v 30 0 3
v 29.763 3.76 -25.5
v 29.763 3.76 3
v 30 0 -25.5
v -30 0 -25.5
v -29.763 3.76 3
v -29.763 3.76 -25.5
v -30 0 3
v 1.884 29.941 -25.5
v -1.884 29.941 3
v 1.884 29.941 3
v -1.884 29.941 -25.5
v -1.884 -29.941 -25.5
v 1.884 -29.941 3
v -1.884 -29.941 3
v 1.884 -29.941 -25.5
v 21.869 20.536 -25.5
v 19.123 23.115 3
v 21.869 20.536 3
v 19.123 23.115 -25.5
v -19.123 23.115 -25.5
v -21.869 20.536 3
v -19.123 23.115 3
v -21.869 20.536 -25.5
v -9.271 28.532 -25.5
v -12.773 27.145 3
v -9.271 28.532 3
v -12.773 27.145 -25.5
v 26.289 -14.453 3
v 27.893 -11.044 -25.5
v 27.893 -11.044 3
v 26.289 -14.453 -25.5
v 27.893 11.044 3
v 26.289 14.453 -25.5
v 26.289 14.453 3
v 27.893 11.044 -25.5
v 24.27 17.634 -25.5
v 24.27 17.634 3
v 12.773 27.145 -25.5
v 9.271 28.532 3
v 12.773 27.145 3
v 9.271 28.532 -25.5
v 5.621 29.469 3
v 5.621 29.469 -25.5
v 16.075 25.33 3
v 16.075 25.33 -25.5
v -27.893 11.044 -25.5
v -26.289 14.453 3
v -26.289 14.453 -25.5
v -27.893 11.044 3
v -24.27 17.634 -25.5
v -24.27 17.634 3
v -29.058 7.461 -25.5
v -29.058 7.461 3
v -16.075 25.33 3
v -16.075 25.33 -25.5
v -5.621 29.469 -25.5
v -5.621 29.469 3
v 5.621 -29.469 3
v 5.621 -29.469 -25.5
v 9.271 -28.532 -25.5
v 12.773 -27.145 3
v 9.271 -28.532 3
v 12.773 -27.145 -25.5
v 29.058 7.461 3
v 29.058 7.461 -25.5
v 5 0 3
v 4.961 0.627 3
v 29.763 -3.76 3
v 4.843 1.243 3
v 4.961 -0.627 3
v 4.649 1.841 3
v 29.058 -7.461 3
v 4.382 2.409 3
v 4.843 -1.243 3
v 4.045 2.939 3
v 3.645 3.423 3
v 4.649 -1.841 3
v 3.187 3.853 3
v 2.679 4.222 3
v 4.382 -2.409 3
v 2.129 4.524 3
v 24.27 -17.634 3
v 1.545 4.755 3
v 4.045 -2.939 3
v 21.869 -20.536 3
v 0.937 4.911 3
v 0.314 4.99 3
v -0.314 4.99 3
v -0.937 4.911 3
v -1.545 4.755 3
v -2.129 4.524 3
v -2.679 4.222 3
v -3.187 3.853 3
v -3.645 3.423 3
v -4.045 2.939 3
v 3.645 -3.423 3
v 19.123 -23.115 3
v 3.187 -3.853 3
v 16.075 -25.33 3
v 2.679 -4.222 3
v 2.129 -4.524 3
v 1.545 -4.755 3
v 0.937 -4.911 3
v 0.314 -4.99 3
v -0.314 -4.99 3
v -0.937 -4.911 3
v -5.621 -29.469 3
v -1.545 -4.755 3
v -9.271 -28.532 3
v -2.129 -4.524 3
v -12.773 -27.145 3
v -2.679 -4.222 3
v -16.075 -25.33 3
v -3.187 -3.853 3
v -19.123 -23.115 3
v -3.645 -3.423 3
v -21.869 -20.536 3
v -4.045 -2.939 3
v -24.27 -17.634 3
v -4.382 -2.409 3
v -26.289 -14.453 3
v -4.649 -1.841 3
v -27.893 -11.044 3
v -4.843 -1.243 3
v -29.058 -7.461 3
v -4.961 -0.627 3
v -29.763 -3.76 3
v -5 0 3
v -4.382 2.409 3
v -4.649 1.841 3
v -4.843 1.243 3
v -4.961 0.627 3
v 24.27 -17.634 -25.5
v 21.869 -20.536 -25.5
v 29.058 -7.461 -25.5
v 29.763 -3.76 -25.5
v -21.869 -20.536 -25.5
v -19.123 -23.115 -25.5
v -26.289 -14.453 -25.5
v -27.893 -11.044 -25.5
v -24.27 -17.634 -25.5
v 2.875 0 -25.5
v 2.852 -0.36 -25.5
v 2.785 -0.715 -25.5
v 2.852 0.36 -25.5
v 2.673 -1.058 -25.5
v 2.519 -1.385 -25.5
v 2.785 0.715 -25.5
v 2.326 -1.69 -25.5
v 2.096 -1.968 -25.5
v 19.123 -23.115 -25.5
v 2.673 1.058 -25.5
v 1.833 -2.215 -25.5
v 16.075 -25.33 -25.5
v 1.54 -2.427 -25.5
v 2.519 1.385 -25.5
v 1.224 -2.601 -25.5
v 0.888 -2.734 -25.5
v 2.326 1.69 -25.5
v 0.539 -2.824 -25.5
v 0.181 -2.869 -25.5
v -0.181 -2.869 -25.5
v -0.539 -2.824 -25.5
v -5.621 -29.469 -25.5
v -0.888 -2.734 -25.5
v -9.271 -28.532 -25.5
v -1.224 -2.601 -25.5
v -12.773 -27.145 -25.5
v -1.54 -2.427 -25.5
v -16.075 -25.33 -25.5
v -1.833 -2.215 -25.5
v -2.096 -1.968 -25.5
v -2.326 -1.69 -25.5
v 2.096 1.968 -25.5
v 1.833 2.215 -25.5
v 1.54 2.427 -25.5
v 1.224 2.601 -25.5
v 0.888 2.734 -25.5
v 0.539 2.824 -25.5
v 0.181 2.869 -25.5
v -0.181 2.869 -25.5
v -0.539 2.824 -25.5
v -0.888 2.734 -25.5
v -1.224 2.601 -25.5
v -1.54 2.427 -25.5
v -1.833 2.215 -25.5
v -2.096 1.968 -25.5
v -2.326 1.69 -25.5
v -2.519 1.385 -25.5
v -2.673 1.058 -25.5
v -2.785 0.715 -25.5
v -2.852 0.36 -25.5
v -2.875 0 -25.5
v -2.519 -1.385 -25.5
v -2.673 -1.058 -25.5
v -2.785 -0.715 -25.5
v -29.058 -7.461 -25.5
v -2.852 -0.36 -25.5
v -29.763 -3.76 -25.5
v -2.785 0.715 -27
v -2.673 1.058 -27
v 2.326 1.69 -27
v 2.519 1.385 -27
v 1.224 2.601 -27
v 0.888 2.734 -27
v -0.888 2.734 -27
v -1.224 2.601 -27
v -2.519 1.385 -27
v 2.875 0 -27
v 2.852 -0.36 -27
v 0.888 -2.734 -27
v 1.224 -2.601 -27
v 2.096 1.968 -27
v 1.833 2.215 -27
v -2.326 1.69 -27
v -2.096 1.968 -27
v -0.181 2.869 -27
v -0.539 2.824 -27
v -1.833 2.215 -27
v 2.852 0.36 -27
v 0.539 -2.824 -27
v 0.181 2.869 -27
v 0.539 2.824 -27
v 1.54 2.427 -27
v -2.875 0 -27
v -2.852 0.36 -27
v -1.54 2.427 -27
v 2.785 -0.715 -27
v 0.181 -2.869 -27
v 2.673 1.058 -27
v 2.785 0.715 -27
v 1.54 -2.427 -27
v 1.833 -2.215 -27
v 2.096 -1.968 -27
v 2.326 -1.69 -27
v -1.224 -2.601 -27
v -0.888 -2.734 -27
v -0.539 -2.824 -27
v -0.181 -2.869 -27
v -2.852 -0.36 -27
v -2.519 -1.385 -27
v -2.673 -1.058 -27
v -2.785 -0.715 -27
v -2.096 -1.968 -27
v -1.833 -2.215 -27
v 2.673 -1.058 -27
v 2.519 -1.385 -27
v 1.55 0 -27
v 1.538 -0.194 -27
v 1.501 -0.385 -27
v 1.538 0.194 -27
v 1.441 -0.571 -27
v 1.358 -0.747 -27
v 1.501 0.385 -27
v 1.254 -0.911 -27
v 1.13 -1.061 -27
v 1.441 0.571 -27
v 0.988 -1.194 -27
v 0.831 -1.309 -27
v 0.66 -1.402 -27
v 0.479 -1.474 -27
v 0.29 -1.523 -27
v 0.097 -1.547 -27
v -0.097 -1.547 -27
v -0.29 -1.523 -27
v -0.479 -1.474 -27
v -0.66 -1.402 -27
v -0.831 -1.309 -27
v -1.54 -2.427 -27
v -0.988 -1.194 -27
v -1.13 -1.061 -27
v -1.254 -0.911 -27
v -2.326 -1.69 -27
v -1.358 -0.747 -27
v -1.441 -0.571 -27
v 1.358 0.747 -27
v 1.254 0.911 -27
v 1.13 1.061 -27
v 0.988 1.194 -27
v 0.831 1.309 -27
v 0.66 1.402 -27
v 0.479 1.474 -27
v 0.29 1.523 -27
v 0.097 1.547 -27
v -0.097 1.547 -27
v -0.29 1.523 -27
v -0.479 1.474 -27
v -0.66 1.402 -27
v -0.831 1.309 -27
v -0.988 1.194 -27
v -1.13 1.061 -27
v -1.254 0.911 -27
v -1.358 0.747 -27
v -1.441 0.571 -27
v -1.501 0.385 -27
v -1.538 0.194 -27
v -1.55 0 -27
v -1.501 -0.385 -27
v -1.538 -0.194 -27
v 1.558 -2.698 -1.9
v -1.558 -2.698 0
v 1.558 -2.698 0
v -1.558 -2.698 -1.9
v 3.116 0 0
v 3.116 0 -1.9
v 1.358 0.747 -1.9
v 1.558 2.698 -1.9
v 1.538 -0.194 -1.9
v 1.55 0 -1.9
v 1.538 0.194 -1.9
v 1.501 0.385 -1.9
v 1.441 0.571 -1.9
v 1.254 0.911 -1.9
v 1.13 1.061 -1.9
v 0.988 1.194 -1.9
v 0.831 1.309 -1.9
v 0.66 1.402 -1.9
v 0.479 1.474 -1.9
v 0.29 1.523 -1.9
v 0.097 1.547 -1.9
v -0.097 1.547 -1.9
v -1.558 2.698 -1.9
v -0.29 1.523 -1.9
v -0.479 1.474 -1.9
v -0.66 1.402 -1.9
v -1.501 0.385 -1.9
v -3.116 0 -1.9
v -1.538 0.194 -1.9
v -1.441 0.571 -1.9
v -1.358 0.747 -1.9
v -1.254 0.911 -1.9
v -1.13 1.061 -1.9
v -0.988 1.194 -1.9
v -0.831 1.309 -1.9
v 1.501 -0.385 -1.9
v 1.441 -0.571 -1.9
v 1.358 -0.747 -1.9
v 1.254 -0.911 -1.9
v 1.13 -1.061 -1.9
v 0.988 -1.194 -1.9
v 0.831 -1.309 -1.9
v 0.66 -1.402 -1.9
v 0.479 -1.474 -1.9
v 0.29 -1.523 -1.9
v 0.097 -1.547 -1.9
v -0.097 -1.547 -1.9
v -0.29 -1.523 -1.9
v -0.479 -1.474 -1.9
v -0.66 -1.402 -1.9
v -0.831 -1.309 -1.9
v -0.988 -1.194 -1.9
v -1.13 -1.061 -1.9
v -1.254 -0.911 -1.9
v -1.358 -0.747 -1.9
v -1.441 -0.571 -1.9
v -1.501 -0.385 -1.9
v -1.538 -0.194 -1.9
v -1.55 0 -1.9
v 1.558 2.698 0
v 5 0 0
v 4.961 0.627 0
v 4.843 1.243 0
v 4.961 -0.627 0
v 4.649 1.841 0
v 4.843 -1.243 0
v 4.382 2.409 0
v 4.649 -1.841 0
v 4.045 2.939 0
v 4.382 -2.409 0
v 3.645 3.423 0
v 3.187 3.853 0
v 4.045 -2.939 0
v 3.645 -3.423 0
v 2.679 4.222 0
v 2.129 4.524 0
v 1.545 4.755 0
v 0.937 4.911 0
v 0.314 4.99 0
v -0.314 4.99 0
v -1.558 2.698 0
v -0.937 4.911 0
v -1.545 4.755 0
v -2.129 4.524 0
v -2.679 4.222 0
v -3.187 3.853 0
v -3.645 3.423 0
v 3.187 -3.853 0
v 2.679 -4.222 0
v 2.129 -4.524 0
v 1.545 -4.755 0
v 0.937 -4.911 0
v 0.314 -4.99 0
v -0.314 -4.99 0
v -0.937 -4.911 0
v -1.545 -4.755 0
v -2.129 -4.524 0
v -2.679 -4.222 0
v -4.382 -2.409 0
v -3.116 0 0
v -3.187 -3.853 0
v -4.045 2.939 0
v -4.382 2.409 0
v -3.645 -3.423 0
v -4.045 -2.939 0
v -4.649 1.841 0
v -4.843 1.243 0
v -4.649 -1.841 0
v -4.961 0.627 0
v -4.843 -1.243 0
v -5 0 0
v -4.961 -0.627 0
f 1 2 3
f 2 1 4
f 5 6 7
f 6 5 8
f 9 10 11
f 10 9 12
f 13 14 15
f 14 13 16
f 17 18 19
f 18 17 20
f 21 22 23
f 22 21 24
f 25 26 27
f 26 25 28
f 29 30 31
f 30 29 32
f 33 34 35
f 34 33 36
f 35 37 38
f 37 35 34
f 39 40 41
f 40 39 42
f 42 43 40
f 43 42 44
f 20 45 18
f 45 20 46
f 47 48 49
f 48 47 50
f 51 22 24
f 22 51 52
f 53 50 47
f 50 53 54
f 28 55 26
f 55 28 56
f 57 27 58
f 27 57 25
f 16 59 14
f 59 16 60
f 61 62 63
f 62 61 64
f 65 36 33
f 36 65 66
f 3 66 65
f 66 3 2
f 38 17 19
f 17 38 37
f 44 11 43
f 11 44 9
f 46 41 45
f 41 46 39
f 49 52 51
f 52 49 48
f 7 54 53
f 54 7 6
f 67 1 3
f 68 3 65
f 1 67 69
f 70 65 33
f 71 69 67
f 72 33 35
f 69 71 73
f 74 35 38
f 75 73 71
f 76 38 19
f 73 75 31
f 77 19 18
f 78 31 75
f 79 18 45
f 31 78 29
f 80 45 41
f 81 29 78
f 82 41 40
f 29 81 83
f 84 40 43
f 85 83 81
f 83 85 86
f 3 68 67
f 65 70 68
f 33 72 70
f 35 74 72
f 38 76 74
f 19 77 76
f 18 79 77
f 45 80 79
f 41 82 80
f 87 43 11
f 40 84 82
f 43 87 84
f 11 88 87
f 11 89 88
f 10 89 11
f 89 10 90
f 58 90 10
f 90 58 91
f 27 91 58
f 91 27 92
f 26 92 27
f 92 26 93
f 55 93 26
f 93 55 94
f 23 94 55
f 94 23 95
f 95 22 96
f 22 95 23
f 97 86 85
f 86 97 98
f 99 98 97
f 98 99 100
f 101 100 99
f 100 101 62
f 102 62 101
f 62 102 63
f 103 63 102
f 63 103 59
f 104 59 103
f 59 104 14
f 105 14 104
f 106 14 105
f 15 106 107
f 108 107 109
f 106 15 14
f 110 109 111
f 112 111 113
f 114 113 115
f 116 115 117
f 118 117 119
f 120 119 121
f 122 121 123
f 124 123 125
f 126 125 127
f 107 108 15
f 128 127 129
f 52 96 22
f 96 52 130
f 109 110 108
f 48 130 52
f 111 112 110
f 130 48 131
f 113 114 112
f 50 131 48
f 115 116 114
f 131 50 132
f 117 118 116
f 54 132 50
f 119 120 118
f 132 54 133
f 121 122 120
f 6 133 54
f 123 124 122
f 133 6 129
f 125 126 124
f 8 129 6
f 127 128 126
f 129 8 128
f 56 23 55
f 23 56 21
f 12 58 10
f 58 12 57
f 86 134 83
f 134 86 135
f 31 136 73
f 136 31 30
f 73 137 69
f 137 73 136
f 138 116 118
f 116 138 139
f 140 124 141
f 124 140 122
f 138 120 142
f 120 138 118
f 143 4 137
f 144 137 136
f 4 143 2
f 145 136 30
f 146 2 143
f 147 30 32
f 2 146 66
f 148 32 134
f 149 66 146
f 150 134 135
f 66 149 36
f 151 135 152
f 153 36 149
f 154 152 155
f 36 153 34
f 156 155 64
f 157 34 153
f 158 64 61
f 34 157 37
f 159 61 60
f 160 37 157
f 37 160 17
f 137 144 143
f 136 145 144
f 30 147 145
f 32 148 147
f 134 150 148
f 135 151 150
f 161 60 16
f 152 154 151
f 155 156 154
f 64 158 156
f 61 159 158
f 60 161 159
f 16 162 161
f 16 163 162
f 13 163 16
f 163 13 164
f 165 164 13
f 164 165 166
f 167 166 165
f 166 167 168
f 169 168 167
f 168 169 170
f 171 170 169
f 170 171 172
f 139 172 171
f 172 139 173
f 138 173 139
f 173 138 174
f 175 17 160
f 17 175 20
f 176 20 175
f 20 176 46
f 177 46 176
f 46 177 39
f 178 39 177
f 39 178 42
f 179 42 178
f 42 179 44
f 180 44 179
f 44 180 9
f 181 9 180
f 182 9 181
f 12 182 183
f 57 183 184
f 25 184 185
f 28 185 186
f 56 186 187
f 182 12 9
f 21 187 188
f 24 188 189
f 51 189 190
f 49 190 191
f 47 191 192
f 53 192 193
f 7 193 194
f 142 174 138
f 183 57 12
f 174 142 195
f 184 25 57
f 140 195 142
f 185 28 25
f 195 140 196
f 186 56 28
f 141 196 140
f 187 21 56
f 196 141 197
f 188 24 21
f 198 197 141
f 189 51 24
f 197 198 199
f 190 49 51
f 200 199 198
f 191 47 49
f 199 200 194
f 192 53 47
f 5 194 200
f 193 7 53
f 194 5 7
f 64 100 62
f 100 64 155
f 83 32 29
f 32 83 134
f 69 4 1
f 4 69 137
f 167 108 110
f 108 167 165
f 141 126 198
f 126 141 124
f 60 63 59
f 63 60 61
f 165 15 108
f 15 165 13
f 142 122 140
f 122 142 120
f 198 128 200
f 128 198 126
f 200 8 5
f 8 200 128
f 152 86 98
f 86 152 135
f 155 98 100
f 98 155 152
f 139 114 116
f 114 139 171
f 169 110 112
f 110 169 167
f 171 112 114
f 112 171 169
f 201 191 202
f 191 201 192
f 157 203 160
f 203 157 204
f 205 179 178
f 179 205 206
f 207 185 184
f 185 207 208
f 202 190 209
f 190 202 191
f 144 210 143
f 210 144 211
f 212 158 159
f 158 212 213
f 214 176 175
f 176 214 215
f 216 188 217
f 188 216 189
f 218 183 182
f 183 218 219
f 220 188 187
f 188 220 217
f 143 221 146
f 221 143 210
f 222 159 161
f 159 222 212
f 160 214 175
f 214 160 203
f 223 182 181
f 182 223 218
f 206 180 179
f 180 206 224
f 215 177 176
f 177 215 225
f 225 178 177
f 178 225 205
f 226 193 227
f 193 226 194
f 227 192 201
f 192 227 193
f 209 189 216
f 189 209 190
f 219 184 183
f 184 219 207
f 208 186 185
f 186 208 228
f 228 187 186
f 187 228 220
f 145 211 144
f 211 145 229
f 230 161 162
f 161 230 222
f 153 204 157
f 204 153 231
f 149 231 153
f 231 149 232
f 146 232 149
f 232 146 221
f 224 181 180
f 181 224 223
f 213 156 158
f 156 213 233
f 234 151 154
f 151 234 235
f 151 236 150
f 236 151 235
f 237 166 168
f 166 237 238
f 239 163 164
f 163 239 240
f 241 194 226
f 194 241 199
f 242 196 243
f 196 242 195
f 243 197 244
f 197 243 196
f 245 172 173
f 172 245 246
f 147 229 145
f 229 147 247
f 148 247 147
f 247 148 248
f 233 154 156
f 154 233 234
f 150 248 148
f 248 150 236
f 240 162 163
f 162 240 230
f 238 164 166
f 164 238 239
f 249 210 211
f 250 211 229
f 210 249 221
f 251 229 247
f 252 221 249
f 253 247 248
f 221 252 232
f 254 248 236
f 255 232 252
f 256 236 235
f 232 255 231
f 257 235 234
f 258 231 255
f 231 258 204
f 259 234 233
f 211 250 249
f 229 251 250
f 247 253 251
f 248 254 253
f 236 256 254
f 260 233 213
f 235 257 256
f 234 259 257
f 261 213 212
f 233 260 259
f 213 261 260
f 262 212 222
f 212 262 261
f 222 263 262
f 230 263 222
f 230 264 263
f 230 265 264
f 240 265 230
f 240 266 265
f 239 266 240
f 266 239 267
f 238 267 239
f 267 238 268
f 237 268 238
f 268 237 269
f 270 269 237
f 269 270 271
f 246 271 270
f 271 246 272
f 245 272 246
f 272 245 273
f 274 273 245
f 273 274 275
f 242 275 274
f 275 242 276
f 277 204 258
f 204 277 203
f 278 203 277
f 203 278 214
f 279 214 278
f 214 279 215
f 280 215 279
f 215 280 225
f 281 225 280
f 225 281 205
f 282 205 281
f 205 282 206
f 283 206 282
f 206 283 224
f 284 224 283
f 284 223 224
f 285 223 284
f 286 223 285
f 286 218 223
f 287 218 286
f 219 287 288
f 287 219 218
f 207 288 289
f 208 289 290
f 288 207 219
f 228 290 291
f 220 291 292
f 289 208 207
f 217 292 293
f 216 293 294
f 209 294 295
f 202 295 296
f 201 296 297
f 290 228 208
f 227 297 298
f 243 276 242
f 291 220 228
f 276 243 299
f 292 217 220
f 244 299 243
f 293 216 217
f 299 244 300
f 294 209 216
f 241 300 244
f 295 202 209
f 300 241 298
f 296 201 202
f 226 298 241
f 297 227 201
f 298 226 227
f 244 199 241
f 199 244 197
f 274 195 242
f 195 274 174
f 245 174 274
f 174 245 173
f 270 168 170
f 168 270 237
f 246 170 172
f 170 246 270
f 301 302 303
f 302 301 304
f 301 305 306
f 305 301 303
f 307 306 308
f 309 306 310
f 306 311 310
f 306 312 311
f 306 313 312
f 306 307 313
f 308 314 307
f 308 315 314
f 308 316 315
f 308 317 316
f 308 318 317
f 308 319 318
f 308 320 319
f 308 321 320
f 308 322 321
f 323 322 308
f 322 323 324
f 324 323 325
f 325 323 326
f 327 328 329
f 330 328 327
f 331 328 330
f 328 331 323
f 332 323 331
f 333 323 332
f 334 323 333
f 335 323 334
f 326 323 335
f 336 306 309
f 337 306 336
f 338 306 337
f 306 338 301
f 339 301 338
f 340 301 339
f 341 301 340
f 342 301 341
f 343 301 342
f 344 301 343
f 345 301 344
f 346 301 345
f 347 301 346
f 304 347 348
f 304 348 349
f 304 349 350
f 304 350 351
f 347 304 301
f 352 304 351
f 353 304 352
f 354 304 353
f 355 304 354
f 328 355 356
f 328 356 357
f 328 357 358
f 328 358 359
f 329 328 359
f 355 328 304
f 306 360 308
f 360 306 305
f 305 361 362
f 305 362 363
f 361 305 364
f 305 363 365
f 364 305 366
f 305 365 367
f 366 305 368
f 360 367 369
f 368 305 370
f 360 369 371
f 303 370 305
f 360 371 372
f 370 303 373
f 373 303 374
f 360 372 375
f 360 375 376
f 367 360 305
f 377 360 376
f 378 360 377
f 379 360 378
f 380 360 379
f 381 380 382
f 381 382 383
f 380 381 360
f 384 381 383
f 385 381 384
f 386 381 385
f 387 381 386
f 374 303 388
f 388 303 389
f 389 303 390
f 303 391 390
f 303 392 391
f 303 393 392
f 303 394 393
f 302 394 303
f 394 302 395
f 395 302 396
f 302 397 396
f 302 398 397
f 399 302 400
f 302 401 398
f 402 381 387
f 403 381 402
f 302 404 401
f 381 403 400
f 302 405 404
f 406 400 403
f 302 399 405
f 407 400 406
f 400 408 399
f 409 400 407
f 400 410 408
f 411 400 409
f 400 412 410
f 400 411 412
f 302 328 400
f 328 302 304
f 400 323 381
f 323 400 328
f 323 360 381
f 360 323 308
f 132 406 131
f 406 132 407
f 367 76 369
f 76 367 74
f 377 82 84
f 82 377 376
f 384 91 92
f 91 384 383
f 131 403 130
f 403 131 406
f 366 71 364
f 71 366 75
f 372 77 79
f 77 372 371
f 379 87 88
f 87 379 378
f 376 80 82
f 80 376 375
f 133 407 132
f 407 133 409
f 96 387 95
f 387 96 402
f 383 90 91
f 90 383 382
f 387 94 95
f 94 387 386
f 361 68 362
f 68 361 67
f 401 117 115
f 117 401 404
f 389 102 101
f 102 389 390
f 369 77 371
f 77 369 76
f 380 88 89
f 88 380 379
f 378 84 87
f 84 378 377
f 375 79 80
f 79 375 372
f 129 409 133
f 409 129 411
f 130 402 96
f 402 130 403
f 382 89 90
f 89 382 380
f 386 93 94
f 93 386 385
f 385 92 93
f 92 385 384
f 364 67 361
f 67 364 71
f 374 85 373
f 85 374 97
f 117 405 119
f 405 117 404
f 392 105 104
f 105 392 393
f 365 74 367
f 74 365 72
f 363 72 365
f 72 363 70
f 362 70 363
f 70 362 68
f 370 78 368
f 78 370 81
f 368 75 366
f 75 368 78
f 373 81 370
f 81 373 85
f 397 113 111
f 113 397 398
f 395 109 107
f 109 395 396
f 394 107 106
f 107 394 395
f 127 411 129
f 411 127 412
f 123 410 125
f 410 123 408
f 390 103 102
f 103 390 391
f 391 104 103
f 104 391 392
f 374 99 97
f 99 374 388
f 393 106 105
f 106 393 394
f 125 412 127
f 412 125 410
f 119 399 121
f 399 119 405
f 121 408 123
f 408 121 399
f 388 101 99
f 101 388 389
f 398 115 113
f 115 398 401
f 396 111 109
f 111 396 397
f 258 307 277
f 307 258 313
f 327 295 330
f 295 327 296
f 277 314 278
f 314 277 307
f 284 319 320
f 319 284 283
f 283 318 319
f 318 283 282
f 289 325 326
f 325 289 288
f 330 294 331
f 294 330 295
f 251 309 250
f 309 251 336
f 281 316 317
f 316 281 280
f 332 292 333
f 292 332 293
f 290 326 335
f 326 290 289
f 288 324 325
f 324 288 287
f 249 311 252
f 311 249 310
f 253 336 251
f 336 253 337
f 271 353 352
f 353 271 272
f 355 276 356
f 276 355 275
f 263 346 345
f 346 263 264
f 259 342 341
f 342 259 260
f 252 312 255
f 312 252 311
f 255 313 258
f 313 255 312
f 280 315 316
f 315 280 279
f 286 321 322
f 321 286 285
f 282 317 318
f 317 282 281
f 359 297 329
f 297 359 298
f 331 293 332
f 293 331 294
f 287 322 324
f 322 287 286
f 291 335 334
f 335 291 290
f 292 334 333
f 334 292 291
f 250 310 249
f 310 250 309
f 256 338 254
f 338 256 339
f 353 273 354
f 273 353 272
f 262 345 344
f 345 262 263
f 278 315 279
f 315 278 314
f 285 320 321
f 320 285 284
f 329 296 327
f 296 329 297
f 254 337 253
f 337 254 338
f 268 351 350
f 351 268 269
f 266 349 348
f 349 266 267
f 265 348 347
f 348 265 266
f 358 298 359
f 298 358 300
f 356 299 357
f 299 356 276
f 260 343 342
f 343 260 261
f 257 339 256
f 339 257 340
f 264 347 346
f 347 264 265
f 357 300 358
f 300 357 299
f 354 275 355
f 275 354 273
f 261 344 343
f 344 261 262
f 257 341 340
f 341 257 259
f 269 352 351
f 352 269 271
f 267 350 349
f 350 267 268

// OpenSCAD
$fn = 50;

difference() {
	union() {
		translate(v = [0, 0, -25.5]) {
			cylinder(h = 28.5, r = 30.0);
		}
		#translate(v = [0, 0, -27.0]) {
			cylinder(h = 27, r = 2.875);
		}
	}
	union() {
		translate(v = [0, 0, 0]) {
			rotate(a = [0, 0, 0]) {
				difference() {
					union() {
						translate(v = [0, 0, -1.9]) {
							linear_extrude(height = 1.9) {
								polygon(points = [[3.1158, 0.0], [1.5579000000000005, 2.698361953111554], [-1.5578999999999994, 2.6983619531115544], [-3.1158, 3.815754496783323e-16], [-1.5579000000000014, -2.6983619531115535], [1.557899999999998, -2.6983619531115552]]);
							}
						}
					}
					union();
				}
			}
		}
		#cylinder(h = 3, r = 5.0);
		#translate(v = [0, 0, -100.0]) {
			cylinder(h = 200, r = 1.55);
		}
	}
}
